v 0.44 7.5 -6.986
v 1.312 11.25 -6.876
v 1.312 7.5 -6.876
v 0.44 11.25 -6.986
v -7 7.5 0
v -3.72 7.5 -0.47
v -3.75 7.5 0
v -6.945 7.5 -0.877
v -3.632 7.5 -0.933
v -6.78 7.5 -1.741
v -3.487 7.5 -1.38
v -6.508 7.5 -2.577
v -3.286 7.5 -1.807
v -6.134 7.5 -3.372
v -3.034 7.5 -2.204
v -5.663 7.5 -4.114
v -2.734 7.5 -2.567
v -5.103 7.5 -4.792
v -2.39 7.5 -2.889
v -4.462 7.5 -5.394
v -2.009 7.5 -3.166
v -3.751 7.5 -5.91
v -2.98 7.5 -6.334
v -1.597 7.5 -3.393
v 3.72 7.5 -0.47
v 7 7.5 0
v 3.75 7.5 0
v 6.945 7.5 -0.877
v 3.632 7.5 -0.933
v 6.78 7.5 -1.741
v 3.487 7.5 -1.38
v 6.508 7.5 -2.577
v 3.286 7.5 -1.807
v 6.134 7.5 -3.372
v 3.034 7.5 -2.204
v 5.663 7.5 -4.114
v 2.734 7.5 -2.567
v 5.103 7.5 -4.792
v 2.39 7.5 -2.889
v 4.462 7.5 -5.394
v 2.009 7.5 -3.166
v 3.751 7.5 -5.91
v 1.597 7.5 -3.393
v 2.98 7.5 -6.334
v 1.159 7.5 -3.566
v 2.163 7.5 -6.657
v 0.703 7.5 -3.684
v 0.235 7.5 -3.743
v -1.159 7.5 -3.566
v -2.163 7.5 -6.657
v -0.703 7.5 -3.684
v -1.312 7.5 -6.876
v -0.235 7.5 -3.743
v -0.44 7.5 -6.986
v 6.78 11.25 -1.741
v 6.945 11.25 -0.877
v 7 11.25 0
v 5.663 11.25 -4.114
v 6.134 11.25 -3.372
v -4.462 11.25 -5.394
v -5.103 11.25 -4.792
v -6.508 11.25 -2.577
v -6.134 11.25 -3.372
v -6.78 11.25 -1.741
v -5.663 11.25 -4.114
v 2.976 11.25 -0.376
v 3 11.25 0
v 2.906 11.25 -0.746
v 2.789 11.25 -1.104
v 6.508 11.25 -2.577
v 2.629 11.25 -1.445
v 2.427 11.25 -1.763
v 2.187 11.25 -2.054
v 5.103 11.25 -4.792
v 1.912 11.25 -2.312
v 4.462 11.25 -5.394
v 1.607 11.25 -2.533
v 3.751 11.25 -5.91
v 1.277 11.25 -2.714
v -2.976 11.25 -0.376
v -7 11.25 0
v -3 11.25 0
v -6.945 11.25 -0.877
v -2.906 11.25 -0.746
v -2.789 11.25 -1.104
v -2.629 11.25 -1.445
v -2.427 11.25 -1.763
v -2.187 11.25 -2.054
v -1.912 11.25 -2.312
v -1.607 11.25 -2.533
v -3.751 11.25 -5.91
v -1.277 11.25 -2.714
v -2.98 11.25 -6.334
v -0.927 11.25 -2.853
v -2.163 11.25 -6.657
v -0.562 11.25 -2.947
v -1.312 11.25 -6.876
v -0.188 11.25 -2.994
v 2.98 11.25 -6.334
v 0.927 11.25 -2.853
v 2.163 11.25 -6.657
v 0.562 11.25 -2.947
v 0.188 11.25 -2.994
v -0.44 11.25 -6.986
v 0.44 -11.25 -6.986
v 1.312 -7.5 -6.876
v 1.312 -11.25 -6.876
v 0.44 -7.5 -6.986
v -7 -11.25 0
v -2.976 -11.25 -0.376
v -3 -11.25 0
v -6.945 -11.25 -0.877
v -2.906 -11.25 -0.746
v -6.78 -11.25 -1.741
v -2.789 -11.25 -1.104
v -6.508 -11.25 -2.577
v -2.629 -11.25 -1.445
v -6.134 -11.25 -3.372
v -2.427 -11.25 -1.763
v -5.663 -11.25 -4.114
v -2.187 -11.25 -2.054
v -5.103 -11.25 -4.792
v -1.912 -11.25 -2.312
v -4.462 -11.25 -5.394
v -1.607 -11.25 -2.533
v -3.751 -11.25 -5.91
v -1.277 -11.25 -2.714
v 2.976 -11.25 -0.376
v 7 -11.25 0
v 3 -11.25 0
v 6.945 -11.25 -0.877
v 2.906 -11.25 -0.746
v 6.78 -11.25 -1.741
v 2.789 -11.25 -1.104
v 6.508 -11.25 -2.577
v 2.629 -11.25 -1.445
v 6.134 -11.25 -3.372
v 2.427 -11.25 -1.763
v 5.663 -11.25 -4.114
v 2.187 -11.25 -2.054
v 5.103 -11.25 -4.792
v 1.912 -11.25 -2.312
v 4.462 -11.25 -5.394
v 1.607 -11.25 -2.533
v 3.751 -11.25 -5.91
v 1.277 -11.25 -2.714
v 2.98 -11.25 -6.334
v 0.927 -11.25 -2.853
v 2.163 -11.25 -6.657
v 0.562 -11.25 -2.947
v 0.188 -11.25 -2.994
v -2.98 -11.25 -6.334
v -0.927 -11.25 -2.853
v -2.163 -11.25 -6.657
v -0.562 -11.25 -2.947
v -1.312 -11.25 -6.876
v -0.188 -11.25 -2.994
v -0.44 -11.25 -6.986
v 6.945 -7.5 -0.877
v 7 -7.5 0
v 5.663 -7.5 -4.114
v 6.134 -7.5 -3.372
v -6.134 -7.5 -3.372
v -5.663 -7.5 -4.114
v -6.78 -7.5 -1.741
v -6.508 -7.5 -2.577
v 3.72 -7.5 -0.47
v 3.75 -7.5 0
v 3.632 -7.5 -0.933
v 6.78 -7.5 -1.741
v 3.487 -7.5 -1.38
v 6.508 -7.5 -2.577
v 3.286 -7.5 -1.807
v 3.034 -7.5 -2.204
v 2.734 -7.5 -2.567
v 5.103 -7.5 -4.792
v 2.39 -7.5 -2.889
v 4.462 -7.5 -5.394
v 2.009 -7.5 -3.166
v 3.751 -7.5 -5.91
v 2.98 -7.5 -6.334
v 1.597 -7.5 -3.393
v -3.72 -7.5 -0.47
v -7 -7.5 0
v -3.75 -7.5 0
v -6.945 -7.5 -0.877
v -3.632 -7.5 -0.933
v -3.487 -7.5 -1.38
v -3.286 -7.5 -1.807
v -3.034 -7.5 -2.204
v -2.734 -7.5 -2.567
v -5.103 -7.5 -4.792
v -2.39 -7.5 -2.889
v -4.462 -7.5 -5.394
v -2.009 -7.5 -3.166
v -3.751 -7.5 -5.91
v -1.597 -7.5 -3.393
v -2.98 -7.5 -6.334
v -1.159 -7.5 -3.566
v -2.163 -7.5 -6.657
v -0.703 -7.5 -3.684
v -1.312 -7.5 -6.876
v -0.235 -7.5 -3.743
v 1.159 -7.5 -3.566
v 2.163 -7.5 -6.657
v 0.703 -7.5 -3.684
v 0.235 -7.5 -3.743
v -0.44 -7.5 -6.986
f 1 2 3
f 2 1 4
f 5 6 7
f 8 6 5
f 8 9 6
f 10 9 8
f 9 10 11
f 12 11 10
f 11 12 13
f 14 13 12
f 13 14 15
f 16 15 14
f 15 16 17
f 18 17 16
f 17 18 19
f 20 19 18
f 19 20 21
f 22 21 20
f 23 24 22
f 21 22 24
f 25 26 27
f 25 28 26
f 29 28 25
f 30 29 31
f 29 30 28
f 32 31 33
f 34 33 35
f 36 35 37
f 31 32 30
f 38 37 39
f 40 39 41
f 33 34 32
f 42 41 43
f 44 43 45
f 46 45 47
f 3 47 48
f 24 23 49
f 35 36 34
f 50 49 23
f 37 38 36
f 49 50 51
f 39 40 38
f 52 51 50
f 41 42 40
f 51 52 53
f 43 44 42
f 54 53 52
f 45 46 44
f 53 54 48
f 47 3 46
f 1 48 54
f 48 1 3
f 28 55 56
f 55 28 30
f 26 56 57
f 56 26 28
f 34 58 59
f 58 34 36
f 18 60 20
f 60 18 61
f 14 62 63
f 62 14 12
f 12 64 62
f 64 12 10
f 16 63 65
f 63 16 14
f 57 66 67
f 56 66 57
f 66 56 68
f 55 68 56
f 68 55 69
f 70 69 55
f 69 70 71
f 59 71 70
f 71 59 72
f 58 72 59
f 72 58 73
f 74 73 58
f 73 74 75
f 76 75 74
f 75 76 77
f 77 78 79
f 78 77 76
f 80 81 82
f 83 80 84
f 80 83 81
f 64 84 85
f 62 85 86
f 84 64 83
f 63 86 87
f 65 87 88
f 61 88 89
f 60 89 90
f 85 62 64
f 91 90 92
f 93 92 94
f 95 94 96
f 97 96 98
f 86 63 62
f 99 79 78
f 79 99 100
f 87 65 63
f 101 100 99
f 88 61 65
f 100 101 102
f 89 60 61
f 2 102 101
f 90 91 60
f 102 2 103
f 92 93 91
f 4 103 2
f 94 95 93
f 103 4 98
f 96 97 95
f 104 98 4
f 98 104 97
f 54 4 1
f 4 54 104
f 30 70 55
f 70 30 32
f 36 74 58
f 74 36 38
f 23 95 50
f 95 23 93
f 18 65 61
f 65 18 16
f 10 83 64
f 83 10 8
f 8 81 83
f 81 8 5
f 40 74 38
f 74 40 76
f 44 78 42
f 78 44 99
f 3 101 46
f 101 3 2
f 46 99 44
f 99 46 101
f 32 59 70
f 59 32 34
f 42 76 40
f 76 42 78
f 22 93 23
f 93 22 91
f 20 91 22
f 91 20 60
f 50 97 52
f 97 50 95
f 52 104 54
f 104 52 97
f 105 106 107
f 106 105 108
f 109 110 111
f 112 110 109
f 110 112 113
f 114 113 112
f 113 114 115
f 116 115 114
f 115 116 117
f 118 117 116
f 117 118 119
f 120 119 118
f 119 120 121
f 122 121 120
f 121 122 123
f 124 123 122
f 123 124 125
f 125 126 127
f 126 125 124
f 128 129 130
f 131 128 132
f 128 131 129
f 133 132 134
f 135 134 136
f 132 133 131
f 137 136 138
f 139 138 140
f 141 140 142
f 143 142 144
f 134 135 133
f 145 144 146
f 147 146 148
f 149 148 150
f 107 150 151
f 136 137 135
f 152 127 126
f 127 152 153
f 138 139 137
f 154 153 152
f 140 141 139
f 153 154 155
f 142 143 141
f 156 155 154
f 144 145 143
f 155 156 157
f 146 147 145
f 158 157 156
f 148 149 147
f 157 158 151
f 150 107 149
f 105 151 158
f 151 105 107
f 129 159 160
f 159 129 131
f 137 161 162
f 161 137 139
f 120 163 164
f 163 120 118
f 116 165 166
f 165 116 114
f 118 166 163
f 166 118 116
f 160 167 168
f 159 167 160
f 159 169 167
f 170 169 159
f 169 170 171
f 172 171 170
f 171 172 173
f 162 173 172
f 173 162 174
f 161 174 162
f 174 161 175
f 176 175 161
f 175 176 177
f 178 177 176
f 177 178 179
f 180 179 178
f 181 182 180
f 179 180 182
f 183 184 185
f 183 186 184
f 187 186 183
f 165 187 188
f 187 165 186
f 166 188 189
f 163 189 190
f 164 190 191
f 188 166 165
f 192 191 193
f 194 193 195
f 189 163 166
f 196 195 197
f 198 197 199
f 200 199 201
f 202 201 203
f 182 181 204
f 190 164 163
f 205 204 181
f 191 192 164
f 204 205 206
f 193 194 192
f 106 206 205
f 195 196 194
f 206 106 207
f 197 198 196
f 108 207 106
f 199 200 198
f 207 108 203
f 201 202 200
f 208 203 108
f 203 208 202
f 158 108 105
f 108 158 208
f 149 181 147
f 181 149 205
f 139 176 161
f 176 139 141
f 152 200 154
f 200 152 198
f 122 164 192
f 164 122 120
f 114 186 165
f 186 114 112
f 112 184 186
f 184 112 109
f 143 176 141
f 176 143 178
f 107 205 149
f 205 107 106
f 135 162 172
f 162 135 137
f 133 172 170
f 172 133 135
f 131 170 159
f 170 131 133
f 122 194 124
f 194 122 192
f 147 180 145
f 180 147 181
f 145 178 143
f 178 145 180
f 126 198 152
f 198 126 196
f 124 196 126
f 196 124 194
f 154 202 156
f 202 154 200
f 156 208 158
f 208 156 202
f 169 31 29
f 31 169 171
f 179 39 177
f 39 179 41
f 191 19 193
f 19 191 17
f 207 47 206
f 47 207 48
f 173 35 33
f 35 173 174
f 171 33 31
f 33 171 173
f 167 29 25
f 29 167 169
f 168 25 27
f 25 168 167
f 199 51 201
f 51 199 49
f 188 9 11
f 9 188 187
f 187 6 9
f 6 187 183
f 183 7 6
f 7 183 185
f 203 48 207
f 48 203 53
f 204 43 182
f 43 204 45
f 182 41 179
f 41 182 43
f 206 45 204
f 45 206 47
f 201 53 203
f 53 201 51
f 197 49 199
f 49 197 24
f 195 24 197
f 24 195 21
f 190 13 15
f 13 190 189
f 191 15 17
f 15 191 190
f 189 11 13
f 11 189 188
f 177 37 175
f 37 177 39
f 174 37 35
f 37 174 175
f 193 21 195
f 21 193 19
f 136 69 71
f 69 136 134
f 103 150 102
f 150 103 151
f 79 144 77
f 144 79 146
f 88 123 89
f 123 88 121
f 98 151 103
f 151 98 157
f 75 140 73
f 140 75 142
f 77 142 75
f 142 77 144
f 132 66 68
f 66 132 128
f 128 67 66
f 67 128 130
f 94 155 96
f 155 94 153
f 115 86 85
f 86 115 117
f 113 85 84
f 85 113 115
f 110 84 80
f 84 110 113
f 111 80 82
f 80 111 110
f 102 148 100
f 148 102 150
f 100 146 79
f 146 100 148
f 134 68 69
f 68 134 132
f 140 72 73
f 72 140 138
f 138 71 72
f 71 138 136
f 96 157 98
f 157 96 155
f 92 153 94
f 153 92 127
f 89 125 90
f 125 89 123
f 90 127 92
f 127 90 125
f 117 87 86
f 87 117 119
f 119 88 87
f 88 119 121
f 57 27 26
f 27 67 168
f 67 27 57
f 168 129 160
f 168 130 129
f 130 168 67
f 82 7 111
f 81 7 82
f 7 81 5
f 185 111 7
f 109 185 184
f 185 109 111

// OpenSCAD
$fn = 50;


difference() {
	union() {
		translate(v = [0, 11.2500000000, 0.0000000000]) {
			rotate(a = [90, 0, 0]) {
				cylinder(h = 3.7500000000, r = 7.0000000000);
			}
		}
		translate(v = [0, -7.5000000000, 0.0000000000]) {
			rotate(a = [90, 0, 0]) {
				cylinder(h = 3.7500000000, r = 7.0000000000);
			}
		}
		translate(v = [0, 11.2500000000, 0.0000000000]) {
			rotate(a = [90, 0, 0]) {
				cylinder(h = 22.5000000000, r = 3.7500000000);
			}
		}
	}
	union() {
		translate(v = [0, 11.2500000000, 0.0000000000]) {
			rotate(a = [90, 0, 0]) {
				cylinder(h = 22.5000000000, r = 3.0000000000);
			}
		}
		translate(v = [-250.0000000000, -250.0000000000, 0]) {
			cube(size = [500, 500, 500]);
		}
		translate(v = [-250.0000000000, -250.0000000000, 0]) {
			cube(size = [500, 500, 500]);
		}
		translate(v = [-250.0000000000, -250.0000000000, 0]) {
			cube(size = [500, 500, 500]);
		}
	}
}
